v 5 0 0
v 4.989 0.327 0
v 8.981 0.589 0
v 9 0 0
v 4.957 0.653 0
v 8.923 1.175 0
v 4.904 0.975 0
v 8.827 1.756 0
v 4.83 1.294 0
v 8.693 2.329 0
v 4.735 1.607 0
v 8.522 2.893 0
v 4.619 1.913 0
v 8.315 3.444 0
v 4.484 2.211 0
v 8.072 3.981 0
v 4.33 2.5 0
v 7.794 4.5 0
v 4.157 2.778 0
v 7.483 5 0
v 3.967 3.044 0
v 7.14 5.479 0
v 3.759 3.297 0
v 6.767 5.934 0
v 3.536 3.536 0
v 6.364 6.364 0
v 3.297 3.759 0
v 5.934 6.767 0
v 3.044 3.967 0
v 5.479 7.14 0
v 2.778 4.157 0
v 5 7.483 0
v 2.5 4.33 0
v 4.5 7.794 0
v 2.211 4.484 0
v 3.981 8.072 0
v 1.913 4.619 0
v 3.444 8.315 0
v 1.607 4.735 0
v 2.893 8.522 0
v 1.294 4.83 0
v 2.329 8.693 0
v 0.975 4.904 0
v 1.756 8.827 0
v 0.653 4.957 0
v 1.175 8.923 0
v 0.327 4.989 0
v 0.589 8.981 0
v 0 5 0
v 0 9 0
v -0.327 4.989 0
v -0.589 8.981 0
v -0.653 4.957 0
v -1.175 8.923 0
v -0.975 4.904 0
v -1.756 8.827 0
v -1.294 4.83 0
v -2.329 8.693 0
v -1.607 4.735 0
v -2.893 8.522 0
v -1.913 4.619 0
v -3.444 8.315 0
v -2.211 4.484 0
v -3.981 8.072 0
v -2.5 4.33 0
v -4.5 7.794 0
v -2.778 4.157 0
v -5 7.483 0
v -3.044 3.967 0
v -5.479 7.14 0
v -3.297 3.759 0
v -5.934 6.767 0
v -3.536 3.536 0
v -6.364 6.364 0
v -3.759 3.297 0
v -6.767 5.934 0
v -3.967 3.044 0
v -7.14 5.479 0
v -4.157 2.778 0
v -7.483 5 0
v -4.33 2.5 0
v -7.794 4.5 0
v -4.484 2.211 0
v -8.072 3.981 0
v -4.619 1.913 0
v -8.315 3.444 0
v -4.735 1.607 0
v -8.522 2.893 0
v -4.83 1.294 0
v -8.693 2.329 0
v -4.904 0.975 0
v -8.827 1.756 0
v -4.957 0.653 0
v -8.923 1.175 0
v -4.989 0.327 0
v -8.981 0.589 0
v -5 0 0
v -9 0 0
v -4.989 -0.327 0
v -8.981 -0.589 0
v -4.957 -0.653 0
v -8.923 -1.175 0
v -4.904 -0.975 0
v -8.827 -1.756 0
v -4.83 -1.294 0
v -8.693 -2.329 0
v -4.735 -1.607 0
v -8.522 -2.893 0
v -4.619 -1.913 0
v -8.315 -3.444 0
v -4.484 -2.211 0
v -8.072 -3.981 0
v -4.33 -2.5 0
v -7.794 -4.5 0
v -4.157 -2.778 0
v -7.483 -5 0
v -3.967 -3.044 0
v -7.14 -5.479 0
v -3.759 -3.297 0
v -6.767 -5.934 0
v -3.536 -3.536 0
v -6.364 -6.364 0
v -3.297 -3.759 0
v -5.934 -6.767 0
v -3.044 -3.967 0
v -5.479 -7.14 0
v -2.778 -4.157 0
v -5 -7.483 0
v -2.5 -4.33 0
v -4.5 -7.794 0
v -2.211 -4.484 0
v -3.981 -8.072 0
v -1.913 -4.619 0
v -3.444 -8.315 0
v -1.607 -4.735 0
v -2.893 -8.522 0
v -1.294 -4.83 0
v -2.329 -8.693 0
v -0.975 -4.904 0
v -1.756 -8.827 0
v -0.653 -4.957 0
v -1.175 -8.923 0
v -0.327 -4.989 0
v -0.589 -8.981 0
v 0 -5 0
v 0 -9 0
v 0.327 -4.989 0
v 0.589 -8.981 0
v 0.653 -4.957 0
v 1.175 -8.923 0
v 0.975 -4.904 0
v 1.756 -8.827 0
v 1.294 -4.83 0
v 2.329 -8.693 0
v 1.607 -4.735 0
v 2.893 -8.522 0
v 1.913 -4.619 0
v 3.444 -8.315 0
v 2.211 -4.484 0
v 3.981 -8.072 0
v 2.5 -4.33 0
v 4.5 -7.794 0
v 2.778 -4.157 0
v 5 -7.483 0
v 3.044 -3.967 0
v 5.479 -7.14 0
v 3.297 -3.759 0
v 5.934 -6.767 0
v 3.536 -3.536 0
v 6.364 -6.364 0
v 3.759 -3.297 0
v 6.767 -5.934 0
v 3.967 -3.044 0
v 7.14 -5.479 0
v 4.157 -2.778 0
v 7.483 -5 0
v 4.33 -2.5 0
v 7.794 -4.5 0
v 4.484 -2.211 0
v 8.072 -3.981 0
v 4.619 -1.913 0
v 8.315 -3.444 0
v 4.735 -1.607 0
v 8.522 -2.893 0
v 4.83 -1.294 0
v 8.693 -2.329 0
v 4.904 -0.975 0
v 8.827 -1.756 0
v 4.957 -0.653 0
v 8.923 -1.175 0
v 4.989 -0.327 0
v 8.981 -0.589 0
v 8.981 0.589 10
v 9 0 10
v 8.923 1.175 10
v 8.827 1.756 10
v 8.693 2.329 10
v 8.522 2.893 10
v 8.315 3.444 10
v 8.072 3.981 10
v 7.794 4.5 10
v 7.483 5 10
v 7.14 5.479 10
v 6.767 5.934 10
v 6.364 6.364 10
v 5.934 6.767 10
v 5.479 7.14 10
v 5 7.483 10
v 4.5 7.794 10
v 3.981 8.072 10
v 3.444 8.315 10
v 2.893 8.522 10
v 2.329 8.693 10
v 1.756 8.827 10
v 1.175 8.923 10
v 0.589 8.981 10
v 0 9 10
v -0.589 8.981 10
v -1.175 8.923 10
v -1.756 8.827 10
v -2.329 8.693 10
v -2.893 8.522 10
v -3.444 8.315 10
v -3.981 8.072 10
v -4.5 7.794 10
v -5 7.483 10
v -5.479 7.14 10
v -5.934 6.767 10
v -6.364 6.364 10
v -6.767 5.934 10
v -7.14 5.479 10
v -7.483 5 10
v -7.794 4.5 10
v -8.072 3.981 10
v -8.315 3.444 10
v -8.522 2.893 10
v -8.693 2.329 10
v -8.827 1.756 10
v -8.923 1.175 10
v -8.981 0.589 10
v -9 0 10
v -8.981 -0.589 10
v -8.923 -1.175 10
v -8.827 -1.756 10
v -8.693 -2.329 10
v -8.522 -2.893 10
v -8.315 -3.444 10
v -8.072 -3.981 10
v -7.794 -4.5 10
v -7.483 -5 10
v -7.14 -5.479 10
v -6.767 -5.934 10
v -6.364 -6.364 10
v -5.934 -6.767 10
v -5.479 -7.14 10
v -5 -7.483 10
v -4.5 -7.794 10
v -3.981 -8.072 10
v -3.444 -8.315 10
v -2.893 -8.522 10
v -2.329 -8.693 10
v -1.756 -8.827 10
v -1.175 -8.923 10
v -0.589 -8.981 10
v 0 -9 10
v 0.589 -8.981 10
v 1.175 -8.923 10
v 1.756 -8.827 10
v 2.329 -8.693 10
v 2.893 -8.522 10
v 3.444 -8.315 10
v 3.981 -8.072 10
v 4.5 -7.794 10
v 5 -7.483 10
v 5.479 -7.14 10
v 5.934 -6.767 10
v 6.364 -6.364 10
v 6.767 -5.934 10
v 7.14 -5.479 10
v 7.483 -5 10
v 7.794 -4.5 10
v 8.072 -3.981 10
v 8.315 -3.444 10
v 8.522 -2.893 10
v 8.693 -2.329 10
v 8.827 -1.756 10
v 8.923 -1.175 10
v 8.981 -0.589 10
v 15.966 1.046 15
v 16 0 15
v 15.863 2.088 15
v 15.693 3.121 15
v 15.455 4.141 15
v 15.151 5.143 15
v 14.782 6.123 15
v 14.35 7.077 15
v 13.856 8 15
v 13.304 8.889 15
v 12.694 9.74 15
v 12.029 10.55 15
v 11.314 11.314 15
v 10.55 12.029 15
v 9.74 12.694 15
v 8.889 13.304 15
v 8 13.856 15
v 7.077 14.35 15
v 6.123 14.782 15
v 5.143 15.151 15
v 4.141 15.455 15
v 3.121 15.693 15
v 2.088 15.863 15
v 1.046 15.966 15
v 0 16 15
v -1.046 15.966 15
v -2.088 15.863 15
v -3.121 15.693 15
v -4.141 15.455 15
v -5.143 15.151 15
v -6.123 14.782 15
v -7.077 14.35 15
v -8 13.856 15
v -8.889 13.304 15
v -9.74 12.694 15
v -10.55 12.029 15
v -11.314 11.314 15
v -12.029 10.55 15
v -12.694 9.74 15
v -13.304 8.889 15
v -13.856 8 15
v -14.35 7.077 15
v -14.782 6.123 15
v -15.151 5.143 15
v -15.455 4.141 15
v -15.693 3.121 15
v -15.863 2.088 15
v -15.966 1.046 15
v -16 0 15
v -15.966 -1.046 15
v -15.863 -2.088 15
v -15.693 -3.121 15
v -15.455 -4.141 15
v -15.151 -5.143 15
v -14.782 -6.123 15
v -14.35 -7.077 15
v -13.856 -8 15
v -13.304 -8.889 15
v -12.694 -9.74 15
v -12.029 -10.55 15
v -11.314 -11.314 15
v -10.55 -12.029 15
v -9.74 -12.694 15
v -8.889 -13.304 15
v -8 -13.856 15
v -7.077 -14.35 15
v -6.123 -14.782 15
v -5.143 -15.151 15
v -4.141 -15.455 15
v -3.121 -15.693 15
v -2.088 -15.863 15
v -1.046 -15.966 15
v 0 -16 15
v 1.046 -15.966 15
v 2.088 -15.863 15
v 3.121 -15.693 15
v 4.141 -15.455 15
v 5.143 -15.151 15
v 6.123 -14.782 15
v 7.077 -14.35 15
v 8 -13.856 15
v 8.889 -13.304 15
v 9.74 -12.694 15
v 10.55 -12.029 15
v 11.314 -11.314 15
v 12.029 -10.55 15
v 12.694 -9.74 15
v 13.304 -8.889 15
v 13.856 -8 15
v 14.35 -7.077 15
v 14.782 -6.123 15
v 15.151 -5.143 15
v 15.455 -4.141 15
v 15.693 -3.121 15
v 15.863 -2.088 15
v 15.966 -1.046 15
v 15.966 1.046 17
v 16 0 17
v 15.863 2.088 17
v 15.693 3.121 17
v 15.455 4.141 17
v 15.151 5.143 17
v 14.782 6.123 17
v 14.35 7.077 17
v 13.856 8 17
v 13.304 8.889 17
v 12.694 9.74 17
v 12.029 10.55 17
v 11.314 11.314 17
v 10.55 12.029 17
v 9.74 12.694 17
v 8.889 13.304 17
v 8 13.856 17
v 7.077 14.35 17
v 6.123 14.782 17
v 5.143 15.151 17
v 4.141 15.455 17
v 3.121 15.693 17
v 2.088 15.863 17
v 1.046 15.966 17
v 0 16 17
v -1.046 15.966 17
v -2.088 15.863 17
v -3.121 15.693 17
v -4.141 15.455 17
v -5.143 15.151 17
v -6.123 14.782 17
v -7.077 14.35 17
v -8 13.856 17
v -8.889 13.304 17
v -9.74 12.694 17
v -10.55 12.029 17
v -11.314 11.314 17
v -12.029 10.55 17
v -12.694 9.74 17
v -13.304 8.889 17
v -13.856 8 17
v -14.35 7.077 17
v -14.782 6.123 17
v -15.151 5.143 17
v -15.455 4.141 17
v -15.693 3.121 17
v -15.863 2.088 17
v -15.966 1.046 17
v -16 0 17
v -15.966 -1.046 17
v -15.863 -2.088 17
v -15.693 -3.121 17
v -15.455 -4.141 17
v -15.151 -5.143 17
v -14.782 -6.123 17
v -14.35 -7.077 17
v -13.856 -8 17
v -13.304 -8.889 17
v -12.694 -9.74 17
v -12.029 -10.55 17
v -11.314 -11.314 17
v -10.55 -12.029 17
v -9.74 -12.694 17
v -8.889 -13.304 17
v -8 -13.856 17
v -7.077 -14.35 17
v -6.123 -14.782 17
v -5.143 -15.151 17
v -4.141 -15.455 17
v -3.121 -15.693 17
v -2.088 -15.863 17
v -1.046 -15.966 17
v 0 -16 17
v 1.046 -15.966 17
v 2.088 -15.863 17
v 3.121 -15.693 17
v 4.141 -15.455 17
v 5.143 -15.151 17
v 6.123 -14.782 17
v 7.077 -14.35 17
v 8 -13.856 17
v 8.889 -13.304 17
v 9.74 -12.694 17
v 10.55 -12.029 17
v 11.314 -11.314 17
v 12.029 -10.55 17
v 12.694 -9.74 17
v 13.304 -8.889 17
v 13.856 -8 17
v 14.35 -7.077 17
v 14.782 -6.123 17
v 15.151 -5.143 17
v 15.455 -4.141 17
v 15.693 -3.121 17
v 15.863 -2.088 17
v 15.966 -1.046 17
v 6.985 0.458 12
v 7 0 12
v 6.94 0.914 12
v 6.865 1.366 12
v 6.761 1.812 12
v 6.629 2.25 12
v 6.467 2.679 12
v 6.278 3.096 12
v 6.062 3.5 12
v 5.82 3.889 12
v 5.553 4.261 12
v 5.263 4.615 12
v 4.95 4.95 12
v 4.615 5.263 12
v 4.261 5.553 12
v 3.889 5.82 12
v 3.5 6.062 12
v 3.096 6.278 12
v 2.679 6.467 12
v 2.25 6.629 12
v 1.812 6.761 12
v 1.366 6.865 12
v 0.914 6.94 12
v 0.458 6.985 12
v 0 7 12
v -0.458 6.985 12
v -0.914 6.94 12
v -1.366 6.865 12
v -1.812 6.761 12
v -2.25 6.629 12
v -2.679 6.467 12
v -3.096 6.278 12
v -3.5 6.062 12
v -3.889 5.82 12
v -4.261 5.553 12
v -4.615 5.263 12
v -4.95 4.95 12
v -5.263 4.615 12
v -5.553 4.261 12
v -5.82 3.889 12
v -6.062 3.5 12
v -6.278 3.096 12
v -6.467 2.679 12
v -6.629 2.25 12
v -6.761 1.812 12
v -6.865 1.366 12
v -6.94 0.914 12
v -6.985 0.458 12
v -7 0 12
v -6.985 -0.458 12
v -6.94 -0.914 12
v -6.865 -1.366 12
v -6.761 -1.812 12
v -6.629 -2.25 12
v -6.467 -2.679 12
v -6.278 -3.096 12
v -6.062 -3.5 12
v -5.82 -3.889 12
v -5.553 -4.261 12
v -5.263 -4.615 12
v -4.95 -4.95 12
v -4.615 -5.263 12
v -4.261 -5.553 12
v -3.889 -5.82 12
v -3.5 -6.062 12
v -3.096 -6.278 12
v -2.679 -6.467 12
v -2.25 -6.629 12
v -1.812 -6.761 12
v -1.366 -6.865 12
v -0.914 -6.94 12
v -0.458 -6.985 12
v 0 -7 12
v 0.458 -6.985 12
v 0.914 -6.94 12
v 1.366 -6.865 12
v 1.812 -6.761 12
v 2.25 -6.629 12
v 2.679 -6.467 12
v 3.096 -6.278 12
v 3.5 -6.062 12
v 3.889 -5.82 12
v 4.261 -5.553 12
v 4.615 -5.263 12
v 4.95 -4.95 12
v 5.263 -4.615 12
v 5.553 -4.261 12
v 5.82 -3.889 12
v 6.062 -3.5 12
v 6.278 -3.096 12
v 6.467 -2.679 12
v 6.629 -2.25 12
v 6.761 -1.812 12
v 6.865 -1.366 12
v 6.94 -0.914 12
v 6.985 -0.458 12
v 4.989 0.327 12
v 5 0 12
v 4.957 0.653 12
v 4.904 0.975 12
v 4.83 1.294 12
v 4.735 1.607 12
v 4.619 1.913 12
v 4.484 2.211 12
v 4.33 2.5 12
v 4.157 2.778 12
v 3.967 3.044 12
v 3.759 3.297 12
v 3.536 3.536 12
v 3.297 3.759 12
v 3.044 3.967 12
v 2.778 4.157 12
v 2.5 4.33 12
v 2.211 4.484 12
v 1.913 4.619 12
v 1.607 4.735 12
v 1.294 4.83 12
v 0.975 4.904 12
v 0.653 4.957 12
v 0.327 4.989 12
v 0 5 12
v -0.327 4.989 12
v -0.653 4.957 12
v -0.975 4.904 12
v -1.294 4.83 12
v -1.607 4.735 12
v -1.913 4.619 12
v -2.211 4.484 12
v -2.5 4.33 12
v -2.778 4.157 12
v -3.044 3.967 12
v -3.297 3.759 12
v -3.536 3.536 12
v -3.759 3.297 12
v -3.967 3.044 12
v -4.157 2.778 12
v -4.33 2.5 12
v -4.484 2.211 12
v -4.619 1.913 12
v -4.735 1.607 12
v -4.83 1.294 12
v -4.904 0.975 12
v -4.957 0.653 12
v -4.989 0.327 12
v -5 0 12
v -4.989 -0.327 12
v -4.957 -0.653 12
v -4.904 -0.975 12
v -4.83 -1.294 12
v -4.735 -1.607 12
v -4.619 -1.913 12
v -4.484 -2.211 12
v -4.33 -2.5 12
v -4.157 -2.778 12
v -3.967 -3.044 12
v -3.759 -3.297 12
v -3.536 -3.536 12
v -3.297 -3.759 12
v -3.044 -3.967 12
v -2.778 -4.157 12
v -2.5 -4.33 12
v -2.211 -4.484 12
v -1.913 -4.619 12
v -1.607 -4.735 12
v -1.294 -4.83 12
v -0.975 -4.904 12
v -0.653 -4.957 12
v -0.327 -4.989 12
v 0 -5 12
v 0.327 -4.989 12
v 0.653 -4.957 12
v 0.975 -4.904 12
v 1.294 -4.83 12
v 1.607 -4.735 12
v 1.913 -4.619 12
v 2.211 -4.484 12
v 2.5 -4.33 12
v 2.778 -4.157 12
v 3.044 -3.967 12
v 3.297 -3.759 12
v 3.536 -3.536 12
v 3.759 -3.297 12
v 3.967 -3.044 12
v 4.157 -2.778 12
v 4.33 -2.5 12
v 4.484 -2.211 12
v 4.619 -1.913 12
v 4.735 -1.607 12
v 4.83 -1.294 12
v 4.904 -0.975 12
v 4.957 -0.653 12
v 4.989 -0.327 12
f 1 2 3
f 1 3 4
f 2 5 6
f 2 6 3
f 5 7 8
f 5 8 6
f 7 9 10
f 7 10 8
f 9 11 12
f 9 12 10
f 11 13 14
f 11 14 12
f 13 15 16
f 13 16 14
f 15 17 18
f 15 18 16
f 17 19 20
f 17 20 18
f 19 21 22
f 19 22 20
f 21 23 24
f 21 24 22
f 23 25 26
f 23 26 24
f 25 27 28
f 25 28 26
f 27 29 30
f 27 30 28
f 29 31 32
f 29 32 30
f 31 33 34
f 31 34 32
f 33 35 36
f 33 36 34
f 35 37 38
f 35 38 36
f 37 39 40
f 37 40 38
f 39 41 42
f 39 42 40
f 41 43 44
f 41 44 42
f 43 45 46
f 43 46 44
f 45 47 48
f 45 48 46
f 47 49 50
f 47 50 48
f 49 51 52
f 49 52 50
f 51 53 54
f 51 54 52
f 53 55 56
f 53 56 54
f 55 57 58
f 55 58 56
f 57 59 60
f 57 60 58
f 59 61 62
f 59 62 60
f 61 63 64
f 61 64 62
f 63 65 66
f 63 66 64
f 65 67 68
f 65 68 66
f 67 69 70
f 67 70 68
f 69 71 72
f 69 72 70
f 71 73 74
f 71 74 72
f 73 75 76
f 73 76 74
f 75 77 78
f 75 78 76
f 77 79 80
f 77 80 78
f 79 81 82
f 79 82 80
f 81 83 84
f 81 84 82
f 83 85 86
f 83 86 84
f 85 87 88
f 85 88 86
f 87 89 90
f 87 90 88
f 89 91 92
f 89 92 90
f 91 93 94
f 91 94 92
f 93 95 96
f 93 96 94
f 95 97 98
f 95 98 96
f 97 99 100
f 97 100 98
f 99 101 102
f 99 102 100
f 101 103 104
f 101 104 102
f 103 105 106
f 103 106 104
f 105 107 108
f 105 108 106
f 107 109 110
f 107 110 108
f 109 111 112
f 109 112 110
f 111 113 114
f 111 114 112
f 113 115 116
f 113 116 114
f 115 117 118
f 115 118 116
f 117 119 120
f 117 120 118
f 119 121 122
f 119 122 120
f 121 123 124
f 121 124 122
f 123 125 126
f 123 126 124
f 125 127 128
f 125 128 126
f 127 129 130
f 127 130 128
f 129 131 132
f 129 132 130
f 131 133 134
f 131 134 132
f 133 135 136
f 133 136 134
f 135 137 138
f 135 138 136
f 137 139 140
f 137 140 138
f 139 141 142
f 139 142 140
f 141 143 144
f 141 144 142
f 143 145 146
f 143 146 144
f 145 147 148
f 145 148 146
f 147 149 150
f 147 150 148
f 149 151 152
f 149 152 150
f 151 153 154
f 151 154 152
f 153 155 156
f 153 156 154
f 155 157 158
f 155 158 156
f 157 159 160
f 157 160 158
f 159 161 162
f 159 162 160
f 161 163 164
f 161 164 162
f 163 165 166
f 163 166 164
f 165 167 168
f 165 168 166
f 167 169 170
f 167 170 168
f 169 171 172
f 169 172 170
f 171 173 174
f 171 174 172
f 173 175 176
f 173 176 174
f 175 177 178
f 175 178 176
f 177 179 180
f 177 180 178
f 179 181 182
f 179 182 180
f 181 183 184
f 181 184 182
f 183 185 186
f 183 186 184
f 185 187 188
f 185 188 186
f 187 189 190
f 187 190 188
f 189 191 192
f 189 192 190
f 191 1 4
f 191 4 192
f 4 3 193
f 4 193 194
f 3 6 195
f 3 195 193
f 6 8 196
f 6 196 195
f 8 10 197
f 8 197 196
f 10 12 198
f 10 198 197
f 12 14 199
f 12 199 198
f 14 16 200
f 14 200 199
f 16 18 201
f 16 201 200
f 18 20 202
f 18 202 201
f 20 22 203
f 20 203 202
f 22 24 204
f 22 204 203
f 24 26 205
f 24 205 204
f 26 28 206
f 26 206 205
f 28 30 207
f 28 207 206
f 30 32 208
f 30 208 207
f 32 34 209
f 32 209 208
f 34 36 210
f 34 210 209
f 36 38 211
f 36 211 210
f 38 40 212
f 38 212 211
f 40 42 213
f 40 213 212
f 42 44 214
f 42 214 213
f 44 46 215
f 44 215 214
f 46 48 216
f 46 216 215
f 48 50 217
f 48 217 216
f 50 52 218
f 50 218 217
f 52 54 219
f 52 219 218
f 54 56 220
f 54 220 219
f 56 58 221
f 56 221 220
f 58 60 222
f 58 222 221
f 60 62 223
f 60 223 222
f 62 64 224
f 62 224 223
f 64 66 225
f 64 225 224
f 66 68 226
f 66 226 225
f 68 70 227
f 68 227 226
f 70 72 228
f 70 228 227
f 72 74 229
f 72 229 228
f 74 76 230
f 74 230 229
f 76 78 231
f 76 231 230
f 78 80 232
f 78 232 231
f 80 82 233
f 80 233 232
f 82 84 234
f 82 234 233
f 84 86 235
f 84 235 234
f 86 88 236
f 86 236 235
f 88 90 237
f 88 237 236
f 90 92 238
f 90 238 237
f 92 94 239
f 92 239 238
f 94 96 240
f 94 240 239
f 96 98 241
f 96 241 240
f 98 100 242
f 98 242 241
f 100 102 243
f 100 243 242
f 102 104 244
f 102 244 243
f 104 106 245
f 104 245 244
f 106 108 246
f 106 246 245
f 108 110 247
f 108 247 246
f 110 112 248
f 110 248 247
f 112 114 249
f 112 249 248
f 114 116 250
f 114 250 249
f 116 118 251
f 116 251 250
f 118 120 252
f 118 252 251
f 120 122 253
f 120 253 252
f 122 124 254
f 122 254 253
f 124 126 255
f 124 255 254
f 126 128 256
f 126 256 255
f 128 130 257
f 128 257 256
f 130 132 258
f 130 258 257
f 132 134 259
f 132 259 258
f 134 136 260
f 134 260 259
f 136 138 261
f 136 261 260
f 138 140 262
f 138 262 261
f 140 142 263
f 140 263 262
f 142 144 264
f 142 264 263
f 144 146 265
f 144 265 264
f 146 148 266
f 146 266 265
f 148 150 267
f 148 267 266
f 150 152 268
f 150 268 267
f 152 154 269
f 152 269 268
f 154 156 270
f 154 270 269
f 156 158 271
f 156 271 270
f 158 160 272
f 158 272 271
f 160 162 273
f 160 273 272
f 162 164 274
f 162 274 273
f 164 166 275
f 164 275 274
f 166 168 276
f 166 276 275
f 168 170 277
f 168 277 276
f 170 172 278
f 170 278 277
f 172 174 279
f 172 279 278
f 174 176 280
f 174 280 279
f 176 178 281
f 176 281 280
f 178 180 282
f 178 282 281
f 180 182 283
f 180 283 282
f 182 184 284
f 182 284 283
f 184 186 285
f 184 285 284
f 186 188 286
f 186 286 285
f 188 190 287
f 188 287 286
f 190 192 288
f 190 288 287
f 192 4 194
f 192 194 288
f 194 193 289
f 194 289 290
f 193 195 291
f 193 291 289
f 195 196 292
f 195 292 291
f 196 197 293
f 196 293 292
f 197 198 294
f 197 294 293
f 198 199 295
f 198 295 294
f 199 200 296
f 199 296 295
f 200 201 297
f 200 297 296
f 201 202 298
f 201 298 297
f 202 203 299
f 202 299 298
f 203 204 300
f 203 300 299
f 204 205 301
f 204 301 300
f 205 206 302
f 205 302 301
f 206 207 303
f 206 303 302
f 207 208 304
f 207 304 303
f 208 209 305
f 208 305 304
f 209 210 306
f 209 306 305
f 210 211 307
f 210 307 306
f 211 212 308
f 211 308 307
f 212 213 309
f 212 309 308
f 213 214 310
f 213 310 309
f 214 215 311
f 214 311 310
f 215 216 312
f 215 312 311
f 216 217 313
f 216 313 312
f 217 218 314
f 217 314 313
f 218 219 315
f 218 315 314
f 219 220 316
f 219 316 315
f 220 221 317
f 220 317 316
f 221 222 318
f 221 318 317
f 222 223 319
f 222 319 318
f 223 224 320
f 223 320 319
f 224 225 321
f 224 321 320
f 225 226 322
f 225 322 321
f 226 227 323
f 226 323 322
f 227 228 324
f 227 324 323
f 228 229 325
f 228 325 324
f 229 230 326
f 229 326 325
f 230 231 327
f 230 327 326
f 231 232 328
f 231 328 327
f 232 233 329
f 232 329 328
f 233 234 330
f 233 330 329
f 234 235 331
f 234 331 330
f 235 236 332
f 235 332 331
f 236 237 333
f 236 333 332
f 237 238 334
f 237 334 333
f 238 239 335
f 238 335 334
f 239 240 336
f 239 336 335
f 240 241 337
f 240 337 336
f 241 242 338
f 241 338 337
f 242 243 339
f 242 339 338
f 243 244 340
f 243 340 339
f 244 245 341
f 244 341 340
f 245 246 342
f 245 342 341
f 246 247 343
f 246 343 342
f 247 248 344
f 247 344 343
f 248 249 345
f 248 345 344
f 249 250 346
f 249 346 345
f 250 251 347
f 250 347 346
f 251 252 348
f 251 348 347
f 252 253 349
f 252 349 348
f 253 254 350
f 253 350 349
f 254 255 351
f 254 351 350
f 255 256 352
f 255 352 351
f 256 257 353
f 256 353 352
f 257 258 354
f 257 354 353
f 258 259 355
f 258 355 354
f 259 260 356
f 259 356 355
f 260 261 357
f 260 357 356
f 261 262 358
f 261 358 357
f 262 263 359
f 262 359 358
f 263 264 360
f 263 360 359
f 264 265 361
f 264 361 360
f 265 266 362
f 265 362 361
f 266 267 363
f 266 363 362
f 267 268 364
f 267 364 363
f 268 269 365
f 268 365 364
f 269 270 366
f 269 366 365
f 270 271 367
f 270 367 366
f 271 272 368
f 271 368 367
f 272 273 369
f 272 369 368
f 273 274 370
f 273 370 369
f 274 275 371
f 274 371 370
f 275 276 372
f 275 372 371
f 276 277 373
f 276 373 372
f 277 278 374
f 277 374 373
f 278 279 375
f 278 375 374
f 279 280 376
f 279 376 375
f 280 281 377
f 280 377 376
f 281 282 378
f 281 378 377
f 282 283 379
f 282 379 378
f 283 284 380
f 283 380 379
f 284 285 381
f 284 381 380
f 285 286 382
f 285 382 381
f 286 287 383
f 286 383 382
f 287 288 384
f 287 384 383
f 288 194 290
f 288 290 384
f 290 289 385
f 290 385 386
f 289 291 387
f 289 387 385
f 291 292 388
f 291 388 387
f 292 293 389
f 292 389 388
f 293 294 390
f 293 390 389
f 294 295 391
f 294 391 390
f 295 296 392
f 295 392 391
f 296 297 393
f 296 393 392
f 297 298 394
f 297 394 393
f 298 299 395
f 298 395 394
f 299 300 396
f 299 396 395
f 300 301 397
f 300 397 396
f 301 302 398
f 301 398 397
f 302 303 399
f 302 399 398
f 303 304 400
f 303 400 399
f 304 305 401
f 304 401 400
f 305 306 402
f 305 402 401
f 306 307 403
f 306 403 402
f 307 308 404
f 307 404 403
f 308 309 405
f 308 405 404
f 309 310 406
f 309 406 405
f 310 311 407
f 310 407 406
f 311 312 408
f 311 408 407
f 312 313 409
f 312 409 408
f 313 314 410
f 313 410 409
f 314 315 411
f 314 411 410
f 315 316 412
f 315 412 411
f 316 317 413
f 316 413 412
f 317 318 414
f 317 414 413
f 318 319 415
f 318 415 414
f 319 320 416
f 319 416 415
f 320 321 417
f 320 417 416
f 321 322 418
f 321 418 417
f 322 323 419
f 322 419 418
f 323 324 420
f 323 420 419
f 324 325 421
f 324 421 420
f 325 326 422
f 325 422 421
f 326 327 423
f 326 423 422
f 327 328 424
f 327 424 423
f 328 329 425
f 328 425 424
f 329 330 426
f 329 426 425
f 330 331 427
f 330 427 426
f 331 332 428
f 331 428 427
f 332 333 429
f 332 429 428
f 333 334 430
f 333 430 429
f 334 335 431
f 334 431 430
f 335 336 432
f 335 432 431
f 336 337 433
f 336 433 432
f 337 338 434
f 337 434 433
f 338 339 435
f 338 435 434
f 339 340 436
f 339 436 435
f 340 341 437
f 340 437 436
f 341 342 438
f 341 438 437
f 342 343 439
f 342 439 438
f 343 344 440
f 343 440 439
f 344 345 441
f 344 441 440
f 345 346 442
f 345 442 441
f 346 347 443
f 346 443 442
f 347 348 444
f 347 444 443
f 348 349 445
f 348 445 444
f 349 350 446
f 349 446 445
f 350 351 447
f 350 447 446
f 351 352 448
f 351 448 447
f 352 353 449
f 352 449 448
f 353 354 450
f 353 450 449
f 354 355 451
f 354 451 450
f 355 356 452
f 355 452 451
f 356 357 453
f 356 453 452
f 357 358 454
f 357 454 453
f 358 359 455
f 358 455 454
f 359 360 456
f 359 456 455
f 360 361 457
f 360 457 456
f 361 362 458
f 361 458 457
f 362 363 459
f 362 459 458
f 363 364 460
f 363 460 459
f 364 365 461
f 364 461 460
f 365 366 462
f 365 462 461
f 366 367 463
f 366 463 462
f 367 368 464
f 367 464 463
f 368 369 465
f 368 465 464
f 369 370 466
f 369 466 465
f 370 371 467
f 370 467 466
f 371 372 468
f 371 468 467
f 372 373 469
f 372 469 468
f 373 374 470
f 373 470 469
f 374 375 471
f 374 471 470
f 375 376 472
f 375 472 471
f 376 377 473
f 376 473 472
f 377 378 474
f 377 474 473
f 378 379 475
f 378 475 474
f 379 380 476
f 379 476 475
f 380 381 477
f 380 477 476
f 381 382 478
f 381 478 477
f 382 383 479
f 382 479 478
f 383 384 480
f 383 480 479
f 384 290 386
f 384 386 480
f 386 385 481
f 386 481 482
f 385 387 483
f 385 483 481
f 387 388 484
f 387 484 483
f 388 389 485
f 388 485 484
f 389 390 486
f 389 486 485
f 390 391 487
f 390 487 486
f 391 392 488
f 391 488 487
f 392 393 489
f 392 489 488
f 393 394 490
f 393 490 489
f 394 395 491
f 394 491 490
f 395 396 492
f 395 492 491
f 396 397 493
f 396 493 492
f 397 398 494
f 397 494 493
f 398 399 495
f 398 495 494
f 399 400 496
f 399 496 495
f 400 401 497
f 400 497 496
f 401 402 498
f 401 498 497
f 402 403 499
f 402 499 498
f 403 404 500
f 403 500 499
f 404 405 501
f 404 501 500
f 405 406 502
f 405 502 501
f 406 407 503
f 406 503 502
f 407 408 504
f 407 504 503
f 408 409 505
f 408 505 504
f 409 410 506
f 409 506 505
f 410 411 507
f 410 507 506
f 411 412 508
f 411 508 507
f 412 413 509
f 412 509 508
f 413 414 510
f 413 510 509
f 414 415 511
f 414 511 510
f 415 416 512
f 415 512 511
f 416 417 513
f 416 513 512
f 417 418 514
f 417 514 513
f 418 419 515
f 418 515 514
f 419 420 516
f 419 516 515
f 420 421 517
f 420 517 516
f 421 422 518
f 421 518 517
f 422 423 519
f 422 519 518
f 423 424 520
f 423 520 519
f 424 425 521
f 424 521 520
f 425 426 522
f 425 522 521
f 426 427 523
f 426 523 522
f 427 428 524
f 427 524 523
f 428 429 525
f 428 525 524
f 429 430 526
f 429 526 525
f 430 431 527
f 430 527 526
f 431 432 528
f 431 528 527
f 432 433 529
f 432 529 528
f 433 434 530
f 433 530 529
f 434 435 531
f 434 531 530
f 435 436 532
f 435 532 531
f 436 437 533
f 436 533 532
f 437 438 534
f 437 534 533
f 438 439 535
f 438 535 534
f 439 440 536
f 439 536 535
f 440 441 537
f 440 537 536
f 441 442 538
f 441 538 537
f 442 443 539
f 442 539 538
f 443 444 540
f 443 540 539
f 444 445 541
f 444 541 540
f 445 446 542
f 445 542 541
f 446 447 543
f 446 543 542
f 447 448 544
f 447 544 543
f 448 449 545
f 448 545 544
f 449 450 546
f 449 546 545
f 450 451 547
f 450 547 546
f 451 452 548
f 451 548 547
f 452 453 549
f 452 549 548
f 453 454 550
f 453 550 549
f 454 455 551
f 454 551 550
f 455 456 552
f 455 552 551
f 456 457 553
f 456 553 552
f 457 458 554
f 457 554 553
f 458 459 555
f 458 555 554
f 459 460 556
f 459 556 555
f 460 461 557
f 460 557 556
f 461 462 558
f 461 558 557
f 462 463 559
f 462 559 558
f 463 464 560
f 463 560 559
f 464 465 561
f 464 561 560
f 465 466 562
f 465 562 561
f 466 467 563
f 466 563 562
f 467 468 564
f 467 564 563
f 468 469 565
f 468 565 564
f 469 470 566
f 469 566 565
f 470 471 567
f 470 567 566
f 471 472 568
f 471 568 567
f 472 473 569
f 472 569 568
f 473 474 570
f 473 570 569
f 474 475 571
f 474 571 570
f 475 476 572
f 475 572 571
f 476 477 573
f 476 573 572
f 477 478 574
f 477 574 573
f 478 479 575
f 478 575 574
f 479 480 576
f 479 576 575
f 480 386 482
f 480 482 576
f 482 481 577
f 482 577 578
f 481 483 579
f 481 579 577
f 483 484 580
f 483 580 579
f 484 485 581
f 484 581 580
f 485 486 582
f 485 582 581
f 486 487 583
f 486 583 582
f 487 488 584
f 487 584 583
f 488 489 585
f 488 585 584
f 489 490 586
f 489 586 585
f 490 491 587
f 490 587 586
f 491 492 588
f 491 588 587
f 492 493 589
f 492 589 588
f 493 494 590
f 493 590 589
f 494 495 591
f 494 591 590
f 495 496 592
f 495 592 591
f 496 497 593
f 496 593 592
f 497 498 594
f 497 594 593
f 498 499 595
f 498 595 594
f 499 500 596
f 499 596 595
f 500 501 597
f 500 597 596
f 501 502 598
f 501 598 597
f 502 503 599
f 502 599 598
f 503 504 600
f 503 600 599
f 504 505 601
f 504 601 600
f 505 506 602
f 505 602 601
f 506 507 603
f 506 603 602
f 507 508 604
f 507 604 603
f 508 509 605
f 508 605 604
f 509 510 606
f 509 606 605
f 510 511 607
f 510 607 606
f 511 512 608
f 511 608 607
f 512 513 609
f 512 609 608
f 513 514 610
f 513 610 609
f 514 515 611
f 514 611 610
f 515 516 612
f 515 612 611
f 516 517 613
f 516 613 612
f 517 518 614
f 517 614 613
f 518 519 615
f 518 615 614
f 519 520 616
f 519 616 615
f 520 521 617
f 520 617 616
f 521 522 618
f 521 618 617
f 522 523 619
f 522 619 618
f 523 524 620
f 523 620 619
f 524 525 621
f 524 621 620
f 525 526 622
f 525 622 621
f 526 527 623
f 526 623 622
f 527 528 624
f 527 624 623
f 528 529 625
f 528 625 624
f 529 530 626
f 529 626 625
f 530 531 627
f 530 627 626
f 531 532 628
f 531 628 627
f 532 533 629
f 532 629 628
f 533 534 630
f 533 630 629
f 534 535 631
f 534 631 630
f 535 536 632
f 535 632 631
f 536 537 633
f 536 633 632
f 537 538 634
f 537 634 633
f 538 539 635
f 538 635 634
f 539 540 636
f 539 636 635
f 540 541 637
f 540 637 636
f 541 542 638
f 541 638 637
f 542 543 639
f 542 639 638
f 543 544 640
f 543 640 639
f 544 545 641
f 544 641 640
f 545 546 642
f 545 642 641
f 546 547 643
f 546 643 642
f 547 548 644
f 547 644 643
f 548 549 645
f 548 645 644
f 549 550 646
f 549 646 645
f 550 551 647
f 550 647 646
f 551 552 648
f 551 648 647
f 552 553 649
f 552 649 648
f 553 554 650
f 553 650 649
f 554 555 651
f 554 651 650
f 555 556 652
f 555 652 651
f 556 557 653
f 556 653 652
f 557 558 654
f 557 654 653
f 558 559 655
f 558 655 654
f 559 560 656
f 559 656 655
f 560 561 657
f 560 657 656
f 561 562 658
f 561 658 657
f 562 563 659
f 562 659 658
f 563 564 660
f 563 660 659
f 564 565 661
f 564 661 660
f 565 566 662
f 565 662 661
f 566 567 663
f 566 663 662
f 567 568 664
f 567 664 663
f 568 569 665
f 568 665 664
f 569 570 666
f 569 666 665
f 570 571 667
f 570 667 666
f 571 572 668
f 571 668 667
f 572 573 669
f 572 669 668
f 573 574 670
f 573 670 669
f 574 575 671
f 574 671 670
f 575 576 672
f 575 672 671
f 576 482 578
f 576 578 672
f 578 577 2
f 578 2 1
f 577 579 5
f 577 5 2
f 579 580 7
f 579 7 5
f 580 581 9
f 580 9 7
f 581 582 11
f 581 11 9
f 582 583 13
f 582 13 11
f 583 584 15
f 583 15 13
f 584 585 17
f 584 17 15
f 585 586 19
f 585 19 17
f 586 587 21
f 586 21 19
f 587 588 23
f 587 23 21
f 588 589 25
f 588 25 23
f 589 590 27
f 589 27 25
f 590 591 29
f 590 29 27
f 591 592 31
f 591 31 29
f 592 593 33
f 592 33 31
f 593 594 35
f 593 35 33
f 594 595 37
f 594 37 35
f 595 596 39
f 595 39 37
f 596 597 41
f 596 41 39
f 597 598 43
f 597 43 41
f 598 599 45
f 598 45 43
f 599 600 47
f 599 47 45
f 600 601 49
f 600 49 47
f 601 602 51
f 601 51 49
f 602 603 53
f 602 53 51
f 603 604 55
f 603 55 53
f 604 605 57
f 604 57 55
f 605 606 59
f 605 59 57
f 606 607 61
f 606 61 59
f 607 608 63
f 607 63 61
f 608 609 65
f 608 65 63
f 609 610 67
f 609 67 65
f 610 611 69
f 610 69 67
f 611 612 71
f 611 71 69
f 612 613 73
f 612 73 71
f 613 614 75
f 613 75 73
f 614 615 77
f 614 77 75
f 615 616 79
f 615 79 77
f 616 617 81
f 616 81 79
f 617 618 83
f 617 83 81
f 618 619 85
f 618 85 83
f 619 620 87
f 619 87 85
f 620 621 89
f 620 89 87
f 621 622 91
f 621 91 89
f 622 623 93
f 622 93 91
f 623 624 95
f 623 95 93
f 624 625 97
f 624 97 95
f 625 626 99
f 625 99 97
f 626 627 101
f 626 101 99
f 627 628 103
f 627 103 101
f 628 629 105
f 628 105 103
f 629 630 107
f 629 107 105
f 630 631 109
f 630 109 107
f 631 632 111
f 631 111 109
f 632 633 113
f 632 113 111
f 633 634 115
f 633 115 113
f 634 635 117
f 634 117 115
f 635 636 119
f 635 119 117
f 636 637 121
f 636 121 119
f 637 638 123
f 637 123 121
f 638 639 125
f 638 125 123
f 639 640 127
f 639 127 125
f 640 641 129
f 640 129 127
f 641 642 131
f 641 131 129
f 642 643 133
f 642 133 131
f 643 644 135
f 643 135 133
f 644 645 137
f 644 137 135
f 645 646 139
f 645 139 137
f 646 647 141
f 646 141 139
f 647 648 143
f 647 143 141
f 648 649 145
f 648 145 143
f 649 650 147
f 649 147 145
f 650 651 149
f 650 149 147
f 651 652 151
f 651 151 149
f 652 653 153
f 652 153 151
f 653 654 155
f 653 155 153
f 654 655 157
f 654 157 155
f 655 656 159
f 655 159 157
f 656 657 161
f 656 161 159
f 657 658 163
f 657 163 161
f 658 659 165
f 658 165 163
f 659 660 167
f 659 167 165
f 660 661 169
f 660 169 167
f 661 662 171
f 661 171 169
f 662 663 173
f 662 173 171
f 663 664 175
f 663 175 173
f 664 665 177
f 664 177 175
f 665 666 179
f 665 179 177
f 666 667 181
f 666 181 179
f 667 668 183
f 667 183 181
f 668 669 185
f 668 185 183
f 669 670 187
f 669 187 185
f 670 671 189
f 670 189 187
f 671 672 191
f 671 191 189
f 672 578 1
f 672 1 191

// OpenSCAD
// Original MechIntel educational model. CC0-1.0. Units: mm.
// Not a standardized or load-rated component.
$fn=96;
// Section points: [radius, height], mm. Edit to change the profile.
section=[[5, 0], [9, 0], [9, 10], [16, 15], [16, 17], [7, 12], [5, 12]];
rotate_extrude($fn=96) polygon(points=section);
